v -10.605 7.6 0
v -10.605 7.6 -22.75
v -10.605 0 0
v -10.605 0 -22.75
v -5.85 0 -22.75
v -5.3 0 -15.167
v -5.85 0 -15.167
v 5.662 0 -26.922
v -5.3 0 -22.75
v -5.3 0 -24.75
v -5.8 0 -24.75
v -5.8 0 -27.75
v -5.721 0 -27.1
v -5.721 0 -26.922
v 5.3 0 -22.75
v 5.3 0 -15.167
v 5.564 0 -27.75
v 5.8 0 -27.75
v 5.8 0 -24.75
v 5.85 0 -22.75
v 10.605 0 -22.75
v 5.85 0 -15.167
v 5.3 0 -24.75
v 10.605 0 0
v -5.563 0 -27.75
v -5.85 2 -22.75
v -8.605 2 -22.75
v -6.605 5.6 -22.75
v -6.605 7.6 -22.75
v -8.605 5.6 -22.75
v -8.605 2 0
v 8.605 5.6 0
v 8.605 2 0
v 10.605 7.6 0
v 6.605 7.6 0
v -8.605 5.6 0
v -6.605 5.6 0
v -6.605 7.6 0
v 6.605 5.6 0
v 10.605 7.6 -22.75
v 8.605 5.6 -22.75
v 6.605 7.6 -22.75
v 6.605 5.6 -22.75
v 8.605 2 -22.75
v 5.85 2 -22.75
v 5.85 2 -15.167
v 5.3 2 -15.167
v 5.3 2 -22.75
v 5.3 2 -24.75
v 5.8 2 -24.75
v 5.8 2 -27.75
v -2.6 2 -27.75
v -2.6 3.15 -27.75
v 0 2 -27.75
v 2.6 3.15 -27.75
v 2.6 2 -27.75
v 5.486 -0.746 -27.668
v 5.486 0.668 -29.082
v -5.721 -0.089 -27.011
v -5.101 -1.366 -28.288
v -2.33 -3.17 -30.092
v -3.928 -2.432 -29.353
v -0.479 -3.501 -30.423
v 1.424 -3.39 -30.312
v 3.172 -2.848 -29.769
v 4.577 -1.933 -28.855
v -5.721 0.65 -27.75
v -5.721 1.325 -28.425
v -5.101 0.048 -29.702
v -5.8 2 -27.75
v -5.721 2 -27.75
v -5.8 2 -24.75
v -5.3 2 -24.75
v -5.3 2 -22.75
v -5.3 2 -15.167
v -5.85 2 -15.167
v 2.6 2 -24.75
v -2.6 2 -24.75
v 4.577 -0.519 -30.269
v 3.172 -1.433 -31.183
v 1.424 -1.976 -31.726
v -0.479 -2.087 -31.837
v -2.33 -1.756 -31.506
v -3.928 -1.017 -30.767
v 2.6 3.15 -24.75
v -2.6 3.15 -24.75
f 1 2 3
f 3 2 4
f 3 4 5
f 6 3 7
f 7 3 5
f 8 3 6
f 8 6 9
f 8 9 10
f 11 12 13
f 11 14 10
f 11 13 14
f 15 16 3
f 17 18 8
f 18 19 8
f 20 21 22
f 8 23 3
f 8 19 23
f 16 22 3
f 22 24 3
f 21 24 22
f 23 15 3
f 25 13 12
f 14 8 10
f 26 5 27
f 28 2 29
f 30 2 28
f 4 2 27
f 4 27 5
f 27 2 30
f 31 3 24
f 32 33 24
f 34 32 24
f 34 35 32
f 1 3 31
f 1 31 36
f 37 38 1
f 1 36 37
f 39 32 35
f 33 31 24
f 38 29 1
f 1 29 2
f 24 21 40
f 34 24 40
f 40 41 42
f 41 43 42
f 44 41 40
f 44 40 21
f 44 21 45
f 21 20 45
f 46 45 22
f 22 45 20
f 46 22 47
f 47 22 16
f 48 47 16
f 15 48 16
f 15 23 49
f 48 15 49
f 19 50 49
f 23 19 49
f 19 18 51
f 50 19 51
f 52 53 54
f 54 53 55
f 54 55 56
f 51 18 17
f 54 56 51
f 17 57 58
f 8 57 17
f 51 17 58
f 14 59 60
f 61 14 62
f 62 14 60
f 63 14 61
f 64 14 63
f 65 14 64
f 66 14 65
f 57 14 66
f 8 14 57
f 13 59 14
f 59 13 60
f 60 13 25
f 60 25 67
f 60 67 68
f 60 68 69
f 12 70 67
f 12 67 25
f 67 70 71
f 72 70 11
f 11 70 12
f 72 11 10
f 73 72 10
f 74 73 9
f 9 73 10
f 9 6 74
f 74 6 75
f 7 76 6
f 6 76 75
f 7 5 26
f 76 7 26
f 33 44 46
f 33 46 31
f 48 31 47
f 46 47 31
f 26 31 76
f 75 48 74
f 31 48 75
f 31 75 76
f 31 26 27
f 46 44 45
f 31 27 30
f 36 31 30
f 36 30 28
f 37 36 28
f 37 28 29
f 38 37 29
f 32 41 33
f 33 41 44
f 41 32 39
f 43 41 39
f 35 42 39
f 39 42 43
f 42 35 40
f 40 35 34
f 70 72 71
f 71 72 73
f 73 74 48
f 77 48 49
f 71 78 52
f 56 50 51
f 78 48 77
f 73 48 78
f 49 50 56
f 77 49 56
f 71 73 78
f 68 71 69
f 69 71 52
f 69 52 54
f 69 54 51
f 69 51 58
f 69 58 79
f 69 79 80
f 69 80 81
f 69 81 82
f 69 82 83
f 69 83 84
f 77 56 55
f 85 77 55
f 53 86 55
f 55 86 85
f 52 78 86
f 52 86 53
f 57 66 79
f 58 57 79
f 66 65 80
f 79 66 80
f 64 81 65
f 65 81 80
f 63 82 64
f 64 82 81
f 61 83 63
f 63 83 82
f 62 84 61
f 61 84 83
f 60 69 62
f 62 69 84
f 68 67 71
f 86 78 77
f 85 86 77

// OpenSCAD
// preview[view:northwest, tilt:bottomdiagonal]

/* [holder chinese laser] */

// min width of the plastic walls.
clf_wall = 2; // plastic walls are 2mm

// we will model the whole thing based on the hole in the middle, since that is all we care about. It should be the measured from the male part on the bike light you want to attach here.
clf_innerWidth = 17.21; // the side to side of the shaft
clf_innerDepth = 3.6; // the depth the shaft
// height does not matter much for the male part, as it will pass trhu the whole part. So just enter a good height so that it reaches the latch on the bottom.
clf_partHeight = 22.75;
// width of the thumb thing for the latch
clf_handle_width = 11.6;

module main_part(){
	latch();
	difference(){
		// the main block where we will chip the pieces away
		cube([ clf_innerWidth/2 + clf_wall, clf_innerDepth+clf_wall*2 , clf_partHeight] );
		main_cuts();
	}
}
module latch(){
	// bottom latch
	translate([ 0, 0, -clf_wall ] ){
		cube( [ clf_handle_width/2 -0.5, clf_wall, clf_wall] );
	}
	// the latching block
	translate([ 0, clf_wall, -3-clf_wall ] ){
		cube( [ 5.20/2, 1.15, 3] );
	}
	// the lachking block base
	translate([ 0, 0, -3-clf_wall ] ){
		cube( [ clf_handle_width/2, clf_wall, 3] );
	}
	//handle();
}
module handle(){
	// the handle
	translate([ 0, clf_wall, -3-clf_wall ] ){
		rotate([45, 0, 0])
			difference(){
				cylinder( h=clf_wall, r=clf_handle_width/2);
				color("blue") rotate([0,0,90])
					translate([0, -clf_handle_width/2-0.001,-0.001])
						cube([ clf_handle_width/2+0.002, clf_handle_width+0.002 , clf_handle_width+0.002]);
			}
	}

}

module main_cuts(){
	// the inner shaft
	translate( [ -0.001, clf_wall, -0.001] ){
		cube([ clf_innerWidth/2+0.001, clf_innerDepth, clf_partHeight+0.002] );
	}
	// the front wall opening
	translate( [ -0.001, (clf_wall)+clf_innerDepth-0.001, -0.001] ){
		cube([ clf_innerWidth/2-clf_wall+0.001, clf_wall+0.002, clf_partHeight+0.002] );
	}
	// the two cuts on the side leading to the latch so that it can move back/forth
	translate( [ clf_handle_width/2-0.5, -0.001, -0.001] ){
		cube([ 0.55, clf_wall+0.002, clf_partHeight/3+0.001]);
	}
}

clf_main();
module clf_main(){
	translate([0,0,-clf_partHeight]){
		main_part();
		actual_mirror();
		handle();
	}
}

// mirror the geometry... why the fuck mirror does not copy? that way it is just an alias to rotate()
module actual_mirror(){
	mirror([10,0,0]){
		main_part();
	}
}
